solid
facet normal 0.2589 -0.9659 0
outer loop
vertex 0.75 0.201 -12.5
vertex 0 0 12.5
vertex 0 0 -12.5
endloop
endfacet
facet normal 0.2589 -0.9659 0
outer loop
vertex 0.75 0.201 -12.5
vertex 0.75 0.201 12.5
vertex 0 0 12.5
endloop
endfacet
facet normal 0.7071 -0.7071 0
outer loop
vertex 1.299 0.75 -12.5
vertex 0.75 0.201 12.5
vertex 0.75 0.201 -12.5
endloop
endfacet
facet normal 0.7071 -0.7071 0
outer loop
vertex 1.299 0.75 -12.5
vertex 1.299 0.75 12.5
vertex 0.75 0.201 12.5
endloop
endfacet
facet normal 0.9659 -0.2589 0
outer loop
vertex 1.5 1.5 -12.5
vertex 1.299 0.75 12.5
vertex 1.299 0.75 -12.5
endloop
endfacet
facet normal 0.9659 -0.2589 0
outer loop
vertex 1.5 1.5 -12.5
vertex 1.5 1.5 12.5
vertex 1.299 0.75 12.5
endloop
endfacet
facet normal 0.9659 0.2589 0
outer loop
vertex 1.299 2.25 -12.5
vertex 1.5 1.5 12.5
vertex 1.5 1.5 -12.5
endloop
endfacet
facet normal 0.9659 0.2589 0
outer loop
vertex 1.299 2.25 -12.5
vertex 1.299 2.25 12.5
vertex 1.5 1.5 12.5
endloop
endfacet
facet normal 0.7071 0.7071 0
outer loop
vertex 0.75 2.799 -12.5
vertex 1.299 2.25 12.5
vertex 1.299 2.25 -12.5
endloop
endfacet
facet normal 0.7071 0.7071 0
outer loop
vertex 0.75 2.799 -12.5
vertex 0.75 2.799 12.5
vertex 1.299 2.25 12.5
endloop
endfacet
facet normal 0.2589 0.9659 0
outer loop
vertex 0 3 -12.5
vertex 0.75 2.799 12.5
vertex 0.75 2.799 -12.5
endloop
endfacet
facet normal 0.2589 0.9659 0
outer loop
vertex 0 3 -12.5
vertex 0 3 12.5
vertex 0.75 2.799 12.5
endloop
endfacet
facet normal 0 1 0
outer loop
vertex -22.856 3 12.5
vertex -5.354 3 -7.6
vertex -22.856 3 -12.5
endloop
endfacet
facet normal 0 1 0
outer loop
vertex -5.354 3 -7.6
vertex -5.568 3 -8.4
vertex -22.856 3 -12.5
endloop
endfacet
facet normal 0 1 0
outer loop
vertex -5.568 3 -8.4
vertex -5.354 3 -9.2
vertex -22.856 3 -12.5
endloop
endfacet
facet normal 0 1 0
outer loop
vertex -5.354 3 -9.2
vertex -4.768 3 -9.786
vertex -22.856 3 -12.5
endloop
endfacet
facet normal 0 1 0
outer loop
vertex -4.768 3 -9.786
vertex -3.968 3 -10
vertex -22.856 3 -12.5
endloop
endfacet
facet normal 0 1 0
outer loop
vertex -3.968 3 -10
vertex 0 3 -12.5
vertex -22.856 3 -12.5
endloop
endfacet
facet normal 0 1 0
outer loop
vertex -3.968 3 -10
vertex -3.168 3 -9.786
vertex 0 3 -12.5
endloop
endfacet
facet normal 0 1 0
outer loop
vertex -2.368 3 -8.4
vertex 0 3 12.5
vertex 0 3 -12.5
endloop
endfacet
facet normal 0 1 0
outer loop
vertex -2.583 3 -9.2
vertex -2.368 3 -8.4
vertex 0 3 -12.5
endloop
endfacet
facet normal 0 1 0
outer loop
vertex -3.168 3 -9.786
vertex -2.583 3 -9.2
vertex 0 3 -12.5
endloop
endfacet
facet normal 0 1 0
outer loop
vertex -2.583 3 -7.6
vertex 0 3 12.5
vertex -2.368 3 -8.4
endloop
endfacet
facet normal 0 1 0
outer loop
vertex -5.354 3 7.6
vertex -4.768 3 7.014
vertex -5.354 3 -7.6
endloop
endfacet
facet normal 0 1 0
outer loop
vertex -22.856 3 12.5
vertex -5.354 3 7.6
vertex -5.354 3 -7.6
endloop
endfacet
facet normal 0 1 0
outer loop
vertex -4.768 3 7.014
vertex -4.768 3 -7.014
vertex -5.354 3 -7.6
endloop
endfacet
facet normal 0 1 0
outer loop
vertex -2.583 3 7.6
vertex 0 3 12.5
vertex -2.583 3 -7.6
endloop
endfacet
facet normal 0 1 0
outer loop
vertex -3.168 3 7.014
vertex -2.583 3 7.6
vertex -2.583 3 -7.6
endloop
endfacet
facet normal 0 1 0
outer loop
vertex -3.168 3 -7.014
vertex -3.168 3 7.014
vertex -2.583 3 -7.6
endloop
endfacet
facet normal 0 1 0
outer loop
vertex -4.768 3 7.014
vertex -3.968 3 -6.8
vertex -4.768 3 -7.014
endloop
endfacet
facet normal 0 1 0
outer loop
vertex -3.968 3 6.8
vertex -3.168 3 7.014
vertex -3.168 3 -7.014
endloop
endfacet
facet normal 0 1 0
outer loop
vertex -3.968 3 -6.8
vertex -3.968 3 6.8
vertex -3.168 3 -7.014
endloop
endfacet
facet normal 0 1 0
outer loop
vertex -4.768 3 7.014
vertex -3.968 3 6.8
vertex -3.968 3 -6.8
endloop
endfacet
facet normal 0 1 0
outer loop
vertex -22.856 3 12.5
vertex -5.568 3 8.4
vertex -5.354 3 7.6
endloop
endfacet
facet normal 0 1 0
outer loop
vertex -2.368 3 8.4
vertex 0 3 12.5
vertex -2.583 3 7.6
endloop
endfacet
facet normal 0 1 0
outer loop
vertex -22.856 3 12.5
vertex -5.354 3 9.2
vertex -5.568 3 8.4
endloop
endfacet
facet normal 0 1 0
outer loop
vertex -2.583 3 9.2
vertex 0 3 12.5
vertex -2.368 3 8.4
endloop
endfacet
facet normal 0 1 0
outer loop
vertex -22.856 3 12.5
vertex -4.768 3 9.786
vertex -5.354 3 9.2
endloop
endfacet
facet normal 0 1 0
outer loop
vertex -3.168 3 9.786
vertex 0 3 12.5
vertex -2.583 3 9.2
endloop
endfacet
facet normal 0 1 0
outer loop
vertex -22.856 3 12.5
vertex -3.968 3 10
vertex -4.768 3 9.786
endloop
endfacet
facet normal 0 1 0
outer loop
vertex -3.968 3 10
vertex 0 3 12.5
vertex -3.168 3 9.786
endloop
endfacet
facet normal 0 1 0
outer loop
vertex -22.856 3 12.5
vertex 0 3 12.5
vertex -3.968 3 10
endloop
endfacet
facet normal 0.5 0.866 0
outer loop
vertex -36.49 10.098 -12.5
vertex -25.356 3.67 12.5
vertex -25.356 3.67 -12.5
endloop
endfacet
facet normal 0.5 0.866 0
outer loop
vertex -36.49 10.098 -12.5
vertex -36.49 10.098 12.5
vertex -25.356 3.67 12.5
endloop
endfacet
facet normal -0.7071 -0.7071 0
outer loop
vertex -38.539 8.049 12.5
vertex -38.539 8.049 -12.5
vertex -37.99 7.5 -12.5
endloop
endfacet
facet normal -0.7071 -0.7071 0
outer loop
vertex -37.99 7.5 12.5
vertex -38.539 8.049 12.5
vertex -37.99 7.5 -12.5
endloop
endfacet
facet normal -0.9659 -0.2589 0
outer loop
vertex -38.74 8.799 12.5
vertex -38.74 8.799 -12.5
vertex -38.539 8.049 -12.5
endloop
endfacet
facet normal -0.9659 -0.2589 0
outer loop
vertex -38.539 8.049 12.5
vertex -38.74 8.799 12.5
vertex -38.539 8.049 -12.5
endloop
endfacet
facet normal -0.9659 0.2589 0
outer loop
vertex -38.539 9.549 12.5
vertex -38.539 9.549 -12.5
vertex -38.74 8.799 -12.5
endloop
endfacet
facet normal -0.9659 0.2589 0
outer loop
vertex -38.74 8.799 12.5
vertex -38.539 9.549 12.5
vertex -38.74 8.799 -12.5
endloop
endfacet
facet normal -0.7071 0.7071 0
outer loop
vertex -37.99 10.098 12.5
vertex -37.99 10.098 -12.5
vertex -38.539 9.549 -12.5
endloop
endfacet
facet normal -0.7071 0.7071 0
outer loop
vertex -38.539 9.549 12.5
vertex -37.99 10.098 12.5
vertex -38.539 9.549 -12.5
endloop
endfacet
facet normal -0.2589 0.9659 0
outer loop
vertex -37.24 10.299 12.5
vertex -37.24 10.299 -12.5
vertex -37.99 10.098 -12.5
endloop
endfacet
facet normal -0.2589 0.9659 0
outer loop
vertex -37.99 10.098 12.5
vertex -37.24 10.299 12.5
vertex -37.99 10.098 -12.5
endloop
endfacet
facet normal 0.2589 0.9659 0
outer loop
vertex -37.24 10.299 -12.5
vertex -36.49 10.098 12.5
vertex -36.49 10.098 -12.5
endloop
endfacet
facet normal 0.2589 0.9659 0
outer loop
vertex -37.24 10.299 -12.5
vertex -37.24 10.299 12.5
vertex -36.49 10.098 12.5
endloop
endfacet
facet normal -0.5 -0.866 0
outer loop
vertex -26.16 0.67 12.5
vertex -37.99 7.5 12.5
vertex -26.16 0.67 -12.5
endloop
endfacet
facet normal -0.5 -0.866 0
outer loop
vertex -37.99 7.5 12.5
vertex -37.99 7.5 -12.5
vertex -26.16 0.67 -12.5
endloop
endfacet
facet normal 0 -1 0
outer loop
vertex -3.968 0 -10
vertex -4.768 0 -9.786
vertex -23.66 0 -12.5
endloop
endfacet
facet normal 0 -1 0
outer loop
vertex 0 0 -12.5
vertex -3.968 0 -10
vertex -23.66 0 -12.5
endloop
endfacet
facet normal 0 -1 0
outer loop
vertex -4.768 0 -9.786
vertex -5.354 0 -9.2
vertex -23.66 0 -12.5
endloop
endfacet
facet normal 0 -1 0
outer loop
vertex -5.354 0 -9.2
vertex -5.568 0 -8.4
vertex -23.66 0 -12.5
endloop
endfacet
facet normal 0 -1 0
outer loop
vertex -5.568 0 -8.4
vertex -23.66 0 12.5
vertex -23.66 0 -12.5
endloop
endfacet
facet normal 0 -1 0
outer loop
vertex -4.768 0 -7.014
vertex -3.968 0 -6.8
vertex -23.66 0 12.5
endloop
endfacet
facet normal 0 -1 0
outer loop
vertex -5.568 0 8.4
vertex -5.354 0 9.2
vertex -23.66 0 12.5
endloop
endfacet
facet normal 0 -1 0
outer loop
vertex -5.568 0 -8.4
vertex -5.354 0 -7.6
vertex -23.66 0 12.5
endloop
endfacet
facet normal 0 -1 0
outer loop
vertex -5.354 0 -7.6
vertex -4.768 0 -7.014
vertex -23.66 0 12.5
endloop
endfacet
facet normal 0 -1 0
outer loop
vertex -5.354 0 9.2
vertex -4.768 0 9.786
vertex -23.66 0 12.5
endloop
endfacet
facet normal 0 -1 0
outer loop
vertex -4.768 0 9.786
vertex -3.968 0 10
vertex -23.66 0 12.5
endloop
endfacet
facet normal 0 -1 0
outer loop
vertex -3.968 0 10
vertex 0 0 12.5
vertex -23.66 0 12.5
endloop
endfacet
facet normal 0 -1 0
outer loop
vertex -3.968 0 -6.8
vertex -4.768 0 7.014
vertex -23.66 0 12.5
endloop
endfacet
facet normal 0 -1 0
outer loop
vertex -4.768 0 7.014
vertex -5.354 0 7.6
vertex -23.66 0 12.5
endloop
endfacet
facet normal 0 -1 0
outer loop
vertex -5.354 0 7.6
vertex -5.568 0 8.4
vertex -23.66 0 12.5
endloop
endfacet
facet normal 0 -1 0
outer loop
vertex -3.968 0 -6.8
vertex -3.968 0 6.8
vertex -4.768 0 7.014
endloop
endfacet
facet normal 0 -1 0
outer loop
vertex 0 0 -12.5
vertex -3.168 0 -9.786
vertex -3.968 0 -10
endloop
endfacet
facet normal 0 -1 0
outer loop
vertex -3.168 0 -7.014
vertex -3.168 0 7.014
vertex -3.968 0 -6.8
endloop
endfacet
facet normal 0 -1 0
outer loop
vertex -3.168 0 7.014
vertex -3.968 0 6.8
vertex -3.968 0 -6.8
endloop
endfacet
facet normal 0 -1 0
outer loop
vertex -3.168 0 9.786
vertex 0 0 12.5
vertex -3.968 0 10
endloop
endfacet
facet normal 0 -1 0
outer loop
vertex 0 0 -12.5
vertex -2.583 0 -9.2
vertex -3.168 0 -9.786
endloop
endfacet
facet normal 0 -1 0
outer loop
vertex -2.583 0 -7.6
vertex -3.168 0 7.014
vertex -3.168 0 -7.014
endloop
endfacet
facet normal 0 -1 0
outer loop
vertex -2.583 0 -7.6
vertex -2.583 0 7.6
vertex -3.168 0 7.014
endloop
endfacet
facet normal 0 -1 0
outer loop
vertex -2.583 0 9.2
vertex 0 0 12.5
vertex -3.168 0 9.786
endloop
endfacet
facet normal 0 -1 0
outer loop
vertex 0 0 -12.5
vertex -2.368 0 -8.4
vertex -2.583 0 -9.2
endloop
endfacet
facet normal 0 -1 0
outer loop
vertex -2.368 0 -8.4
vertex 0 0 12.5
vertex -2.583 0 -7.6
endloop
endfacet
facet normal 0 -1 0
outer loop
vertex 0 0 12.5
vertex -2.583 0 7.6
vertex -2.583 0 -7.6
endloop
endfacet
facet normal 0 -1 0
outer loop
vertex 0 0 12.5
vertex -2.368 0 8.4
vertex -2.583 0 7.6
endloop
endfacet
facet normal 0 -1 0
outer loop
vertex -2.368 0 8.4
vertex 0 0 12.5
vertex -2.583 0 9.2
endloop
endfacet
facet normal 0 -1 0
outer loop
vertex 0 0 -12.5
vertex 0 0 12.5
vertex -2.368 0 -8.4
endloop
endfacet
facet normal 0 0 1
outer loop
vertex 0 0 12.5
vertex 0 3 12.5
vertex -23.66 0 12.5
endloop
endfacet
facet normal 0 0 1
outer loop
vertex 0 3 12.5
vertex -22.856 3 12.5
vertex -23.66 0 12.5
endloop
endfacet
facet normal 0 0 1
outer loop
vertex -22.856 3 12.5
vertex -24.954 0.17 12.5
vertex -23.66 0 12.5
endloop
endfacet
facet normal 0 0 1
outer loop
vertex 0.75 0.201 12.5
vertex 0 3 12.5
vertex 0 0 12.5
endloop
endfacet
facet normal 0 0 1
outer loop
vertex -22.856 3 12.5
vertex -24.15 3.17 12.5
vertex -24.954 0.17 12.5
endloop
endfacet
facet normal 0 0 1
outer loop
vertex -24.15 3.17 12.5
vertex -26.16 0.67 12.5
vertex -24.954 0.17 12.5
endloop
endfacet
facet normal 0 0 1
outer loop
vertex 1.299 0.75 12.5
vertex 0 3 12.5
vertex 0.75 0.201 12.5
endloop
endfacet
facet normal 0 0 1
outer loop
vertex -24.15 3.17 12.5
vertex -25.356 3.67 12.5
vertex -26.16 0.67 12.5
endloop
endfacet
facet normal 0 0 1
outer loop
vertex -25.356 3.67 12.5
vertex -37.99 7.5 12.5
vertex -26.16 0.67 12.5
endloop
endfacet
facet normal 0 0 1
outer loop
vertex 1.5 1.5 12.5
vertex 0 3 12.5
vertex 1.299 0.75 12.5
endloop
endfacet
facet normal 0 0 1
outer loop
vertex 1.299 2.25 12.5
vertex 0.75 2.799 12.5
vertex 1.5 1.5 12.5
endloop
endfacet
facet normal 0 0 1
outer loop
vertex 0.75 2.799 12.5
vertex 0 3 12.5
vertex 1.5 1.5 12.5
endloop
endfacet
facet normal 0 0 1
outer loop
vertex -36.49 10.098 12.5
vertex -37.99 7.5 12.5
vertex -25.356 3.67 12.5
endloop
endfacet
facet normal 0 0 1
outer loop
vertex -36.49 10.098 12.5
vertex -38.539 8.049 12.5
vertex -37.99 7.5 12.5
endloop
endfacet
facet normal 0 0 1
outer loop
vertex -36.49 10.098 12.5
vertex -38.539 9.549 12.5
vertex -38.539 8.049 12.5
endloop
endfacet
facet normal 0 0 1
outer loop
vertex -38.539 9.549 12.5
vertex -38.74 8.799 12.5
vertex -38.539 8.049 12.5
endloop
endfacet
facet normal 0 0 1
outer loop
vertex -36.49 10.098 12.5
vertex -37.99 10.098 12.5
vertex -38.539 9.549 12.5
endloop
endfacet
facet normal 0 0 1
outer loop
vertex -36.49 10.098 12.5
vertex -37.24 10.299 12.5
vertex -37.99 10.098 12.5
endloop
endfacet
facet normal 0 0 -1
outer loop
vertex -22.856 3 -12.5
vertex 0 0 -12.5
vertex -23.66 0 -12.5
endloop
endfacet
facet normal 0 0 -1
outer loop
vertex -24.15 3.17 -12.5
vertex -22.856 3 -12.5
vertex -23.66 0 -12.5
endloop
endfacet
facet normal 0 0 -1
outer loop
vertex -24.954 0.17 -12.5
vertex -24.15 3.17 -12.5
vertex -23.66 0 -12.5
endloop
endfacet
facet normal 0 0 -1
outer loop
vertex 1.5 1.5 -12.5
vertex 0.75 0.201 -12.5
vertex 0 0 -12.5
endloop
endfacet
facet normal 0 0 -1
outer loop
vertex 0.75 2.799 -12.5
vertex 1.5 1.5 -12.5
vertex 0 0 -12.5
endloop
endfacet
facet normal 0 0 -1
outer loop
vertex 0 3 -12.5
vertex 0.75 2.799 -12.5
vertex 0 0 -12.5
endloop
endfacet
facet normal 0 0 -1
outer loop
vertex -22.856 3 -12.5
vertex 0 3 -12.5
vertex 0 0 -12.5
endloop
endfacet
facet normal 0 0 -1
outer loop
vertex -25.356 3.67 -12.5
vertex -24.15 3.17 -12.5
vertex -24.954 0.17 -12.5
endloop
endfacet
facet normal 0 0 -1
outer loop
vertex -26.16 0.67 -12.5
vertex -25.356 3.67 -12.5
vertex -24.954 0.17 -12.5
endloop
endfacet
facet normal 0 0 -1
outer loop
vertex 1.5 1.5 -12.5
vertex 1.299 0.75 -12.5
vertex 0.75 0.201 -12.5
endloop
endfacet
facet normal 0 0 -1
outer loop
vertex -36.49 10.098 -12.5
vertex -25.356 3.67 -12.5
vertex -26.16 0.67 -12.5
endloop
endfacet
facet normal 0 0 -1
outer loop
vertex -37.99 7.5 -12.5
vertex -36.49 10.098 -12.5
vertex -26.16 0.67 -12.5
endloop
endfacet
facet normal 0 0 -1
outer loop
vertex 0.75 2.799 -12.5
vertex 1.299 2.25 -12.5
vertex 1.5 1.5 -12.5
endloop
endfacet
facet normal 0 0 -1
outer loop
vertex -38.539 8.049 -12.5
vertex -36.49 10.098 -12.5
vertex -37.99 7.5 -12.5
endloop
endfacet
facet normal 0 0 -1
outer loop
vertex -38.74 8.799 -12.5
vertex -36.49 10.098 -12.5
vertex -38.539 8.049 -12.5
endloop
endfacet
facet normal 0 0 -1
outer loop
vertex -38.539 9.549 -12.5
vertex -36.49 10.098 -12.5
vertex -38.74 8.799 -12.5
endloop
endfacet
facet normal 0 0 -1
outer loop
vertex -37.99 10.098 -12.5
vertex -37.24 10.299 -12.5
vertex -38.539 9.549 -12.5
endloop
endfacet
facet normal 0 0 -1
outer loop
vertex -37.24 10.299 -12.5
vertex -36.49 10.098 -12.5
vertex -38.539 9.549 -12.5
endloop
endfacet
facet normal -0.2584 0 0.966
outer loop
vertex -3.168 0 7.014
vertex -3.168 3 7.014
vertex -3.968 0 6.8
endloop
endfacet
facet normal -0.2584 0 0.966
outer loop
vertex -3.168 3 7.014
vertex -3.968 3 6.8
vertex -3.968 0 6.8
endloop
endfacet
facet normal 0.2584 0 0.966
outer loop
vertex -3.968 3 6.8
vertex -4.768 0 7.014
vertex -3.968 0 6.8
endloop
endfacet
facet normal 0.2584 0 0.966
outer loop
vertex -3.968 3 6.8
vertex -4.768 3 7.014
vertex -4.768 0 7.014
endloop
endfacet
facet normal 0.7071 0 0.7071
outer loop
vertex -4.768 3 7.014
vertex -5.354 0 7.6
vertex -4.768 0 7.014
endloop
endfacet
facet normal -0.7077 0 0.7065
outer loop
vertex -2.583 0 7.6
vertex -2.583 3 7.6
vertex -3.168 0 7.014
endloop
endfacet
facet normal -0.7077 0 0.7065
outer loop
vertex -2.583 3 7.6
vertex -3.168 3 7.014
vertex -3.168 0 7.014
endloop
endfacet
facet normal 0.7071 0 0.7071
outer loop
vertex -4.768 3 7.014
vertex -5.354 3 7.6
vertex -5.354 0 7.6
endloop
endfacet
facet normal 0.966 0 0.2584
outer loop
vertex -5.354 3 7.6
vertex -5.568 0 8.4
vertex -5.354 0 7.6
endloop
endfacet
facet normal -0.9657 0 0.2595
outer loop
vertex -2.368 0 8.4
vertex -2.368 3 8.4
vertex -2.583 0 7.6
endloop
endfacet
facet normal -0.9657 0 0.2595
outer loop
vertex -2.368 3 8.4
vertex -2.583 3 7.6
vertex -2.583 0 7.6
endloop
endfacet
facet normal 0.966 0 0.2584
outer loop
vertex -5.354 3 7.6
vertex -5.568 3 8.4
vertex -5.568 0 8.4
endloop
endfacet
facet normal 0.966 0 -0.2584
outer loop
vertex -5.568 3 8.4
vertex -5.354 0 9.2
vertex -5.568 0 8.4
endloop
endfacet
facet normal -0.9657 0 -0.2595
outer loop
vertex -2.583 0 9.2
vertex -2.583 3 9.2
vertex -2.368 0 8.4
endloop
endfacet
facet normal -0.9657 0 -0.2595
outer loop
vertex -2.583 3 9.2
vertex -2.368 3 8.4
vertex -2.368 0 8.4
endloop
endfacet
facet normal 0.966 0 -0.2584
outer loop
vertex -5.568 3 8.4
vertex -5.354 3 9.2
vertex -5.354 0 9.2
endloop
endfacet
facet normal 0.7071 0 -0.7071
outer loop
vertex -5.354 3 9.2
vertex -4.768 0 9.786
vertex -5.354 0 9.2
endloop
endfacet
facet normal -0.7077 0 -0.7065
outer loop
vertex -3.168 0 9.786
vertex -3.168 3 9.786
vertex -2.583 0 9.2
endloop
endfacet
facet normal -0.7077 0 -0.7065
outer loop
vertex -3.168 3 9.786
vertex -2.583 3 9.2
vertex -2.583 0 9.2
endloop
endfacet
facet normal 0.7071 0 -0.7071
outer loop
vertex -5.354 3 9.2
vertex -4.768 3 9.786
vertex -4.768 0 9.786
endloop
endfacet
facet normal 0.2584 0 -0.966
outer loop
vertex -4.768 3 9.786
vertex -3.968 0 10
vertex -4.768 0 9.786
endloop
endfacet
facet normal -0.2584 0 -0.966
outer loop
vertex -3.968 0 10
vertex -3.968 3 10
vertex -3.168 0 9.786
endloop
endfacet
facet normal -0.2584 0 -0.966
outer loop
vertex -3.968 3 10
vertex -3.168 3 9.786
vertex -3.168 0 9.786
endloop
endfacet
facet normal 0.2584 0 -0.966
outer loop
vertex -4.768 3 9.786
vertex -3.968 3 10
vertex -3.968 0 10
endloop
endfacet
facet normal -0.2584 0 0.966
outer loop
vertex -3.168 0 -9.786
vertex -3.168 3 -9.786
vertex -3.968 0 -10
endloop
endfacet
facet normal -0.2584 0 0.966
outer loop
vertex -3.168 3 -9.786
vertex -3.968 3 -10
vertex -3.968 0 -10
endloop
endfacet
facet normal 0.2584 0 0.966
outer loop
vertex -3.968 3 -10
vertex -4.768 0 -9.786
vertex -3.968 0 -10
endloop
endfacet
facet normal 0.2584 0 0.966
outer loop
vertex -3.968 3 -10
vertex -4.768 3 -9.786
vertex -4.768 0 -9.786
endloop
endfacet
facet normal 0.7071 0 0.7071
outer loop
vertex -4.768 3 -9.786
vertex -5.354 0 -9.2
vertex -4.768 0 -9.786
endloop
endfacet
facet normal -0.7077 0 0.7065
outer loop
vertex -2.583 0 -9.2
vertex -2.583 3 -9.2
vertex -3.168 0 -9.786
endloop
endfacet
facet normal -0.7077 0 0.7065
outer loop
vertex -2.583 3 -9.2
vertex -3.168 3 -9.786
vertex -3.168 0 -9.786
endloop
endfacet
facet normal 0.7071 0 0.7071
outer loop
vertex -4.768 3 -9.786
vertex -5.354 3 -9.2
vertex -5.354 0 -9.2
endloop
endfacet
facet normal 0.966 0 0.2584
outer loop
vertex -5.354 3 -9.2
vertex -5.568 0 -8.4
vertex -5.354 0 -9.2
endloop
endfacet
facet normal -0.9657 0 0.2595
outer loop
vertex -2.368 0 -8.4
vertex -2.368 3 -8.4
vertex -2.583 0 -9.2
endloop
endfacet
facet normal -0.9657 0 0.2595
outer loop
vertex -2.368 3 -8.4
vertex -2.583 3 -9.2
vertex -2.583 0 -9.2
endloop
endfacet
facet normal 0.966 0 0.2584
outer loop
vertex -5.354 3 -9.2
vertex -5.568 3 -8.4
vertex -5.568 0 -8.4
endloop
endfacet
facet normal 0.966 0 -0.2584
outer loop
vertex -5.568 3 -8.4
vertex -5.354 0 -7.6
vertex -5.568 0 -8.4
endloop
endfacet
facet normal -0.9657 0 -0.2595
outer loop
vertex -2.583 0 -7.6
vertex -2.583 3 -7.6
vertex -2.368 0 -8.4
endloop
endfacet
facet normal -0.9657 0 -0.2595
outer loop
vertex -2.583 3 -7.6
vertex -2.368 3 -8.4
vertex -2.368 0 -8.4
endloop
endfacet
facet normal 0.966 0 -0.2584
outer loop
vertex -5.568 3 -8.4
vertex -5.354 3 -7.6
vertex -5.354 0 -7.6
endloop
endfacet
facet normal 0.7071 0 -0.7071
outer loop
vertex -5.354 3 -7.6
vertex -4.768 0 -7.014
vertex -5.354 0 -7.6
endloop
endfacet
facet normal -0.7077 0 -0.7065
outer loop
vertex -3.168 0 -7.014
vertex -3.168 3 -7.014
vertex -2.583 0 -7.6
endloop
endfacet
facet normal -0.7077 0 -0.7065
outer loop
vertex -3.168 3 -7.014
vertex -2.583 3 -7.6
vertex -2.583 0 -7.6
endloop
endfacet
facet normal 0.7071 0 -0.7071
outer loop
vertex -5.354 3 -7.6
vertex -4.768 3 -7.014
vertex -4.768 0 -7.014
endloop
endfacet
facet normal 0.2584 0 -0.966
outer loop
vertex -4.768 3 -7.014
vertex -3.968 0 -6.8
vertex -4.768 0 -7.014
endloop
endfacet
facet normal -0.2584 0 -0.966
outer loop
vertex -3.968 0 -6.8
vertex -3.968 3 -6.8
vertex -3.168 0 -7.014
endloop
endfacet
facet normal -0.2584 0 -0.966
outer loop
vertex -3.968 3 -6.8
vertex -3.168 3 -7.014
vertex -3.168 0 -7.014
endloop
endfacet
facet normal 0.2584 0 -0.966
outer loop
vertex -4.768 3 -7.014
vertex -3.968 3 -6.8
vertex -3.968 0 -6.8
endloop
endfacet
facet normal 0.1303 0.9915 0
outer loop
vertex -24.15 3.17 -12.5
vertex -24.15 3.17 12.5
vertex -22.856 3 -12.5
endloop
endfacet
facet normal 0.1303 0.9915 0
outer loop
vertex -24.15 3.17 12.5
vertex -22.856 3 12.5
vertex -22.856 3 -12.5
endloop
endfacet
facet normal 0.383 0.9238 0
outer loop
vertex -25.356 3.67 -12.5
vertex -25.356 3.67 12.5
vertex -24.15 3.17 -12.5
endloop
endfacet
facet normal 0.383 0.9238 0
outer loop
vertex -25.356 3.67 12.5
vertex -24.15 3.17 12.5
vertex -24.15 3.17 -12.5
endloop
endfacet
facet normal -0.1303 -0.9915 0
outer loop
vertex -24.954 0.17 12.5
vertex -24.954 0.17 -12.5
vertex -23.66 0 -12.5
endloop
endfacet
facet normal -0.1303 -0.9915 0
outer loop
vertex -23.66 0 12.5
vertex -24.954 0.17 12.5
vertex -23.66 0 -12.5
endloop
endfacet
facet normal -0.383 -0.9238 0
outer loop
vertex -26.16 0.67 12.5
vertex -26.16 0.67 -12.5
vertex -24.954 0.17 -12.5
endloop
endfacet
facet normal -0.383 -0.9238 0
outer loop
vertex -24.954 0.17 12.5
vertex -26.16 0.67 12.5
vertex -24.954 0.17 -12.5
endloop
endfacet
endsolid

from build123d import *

# Parameters (mm, degrees)
BOSS_EXTRUDE1_DEPTH = 12.5
SKETCH2_R           = 1.6
CUT_EXTRUDE1_DEPTH  = 42.356294342
FILLET1_R           = 5


with BuildPart() as part:
    # Sketch1 → Boss-Extrude1 (new, symmetric)
    with BuildSketch(Plane.XY):
        with BuildLine():
            Line((0, 0), (-25, 0))
            Line((-25, 0), (-37.990381057, 7.5))
            ThreePointArc((-37.990381057, 7.5), (-38.539419162, 9.549038106), (-36.490381057, 10.098076211))
            Line((-36.490381057, 10.098076211), (-24.196152423, 3))
            Line((-24.196152423, 3), (0, 3))
            ThreePointArc((0, 3), (1.5, 1.5), (0, 0))
        make_face()
    extrude(amount=BOSS_EXTRUDE1_DEPTH, both=True)

    # Sketch2 → Cut-Extrude1 (cut, symmetric)
    with BuildSketch(Plane(origin=(0, 3, 0), x_dir=(1, 0, 0), z_dir=(0, 1, 0))):
        with Locations(Location((-3.968168997, -8.4, 0), (0, 0, 270))):
            Circle(SKETCH2_R)
    cut_extrude1 = extrude(amount=CUT_EXTRUDE1_DEPTH, both=True, mode=Mode.SUBTRACT)

    # Mirror1: Cut-Extrude1 across plane
    add(cut_extrude1.mirror(Plane.XY), mode=Mode.SUBTRACT)

    # Fillet1
    fillet1_edges = [part.edges().sort_by_distance(p)[0] for p in [
        (-25, 0, 0),
        (-24.196152423, 3, 0),
    ]]
    fillet(fillet1_edges, radius=FILLET1_R)


solid = part.part
